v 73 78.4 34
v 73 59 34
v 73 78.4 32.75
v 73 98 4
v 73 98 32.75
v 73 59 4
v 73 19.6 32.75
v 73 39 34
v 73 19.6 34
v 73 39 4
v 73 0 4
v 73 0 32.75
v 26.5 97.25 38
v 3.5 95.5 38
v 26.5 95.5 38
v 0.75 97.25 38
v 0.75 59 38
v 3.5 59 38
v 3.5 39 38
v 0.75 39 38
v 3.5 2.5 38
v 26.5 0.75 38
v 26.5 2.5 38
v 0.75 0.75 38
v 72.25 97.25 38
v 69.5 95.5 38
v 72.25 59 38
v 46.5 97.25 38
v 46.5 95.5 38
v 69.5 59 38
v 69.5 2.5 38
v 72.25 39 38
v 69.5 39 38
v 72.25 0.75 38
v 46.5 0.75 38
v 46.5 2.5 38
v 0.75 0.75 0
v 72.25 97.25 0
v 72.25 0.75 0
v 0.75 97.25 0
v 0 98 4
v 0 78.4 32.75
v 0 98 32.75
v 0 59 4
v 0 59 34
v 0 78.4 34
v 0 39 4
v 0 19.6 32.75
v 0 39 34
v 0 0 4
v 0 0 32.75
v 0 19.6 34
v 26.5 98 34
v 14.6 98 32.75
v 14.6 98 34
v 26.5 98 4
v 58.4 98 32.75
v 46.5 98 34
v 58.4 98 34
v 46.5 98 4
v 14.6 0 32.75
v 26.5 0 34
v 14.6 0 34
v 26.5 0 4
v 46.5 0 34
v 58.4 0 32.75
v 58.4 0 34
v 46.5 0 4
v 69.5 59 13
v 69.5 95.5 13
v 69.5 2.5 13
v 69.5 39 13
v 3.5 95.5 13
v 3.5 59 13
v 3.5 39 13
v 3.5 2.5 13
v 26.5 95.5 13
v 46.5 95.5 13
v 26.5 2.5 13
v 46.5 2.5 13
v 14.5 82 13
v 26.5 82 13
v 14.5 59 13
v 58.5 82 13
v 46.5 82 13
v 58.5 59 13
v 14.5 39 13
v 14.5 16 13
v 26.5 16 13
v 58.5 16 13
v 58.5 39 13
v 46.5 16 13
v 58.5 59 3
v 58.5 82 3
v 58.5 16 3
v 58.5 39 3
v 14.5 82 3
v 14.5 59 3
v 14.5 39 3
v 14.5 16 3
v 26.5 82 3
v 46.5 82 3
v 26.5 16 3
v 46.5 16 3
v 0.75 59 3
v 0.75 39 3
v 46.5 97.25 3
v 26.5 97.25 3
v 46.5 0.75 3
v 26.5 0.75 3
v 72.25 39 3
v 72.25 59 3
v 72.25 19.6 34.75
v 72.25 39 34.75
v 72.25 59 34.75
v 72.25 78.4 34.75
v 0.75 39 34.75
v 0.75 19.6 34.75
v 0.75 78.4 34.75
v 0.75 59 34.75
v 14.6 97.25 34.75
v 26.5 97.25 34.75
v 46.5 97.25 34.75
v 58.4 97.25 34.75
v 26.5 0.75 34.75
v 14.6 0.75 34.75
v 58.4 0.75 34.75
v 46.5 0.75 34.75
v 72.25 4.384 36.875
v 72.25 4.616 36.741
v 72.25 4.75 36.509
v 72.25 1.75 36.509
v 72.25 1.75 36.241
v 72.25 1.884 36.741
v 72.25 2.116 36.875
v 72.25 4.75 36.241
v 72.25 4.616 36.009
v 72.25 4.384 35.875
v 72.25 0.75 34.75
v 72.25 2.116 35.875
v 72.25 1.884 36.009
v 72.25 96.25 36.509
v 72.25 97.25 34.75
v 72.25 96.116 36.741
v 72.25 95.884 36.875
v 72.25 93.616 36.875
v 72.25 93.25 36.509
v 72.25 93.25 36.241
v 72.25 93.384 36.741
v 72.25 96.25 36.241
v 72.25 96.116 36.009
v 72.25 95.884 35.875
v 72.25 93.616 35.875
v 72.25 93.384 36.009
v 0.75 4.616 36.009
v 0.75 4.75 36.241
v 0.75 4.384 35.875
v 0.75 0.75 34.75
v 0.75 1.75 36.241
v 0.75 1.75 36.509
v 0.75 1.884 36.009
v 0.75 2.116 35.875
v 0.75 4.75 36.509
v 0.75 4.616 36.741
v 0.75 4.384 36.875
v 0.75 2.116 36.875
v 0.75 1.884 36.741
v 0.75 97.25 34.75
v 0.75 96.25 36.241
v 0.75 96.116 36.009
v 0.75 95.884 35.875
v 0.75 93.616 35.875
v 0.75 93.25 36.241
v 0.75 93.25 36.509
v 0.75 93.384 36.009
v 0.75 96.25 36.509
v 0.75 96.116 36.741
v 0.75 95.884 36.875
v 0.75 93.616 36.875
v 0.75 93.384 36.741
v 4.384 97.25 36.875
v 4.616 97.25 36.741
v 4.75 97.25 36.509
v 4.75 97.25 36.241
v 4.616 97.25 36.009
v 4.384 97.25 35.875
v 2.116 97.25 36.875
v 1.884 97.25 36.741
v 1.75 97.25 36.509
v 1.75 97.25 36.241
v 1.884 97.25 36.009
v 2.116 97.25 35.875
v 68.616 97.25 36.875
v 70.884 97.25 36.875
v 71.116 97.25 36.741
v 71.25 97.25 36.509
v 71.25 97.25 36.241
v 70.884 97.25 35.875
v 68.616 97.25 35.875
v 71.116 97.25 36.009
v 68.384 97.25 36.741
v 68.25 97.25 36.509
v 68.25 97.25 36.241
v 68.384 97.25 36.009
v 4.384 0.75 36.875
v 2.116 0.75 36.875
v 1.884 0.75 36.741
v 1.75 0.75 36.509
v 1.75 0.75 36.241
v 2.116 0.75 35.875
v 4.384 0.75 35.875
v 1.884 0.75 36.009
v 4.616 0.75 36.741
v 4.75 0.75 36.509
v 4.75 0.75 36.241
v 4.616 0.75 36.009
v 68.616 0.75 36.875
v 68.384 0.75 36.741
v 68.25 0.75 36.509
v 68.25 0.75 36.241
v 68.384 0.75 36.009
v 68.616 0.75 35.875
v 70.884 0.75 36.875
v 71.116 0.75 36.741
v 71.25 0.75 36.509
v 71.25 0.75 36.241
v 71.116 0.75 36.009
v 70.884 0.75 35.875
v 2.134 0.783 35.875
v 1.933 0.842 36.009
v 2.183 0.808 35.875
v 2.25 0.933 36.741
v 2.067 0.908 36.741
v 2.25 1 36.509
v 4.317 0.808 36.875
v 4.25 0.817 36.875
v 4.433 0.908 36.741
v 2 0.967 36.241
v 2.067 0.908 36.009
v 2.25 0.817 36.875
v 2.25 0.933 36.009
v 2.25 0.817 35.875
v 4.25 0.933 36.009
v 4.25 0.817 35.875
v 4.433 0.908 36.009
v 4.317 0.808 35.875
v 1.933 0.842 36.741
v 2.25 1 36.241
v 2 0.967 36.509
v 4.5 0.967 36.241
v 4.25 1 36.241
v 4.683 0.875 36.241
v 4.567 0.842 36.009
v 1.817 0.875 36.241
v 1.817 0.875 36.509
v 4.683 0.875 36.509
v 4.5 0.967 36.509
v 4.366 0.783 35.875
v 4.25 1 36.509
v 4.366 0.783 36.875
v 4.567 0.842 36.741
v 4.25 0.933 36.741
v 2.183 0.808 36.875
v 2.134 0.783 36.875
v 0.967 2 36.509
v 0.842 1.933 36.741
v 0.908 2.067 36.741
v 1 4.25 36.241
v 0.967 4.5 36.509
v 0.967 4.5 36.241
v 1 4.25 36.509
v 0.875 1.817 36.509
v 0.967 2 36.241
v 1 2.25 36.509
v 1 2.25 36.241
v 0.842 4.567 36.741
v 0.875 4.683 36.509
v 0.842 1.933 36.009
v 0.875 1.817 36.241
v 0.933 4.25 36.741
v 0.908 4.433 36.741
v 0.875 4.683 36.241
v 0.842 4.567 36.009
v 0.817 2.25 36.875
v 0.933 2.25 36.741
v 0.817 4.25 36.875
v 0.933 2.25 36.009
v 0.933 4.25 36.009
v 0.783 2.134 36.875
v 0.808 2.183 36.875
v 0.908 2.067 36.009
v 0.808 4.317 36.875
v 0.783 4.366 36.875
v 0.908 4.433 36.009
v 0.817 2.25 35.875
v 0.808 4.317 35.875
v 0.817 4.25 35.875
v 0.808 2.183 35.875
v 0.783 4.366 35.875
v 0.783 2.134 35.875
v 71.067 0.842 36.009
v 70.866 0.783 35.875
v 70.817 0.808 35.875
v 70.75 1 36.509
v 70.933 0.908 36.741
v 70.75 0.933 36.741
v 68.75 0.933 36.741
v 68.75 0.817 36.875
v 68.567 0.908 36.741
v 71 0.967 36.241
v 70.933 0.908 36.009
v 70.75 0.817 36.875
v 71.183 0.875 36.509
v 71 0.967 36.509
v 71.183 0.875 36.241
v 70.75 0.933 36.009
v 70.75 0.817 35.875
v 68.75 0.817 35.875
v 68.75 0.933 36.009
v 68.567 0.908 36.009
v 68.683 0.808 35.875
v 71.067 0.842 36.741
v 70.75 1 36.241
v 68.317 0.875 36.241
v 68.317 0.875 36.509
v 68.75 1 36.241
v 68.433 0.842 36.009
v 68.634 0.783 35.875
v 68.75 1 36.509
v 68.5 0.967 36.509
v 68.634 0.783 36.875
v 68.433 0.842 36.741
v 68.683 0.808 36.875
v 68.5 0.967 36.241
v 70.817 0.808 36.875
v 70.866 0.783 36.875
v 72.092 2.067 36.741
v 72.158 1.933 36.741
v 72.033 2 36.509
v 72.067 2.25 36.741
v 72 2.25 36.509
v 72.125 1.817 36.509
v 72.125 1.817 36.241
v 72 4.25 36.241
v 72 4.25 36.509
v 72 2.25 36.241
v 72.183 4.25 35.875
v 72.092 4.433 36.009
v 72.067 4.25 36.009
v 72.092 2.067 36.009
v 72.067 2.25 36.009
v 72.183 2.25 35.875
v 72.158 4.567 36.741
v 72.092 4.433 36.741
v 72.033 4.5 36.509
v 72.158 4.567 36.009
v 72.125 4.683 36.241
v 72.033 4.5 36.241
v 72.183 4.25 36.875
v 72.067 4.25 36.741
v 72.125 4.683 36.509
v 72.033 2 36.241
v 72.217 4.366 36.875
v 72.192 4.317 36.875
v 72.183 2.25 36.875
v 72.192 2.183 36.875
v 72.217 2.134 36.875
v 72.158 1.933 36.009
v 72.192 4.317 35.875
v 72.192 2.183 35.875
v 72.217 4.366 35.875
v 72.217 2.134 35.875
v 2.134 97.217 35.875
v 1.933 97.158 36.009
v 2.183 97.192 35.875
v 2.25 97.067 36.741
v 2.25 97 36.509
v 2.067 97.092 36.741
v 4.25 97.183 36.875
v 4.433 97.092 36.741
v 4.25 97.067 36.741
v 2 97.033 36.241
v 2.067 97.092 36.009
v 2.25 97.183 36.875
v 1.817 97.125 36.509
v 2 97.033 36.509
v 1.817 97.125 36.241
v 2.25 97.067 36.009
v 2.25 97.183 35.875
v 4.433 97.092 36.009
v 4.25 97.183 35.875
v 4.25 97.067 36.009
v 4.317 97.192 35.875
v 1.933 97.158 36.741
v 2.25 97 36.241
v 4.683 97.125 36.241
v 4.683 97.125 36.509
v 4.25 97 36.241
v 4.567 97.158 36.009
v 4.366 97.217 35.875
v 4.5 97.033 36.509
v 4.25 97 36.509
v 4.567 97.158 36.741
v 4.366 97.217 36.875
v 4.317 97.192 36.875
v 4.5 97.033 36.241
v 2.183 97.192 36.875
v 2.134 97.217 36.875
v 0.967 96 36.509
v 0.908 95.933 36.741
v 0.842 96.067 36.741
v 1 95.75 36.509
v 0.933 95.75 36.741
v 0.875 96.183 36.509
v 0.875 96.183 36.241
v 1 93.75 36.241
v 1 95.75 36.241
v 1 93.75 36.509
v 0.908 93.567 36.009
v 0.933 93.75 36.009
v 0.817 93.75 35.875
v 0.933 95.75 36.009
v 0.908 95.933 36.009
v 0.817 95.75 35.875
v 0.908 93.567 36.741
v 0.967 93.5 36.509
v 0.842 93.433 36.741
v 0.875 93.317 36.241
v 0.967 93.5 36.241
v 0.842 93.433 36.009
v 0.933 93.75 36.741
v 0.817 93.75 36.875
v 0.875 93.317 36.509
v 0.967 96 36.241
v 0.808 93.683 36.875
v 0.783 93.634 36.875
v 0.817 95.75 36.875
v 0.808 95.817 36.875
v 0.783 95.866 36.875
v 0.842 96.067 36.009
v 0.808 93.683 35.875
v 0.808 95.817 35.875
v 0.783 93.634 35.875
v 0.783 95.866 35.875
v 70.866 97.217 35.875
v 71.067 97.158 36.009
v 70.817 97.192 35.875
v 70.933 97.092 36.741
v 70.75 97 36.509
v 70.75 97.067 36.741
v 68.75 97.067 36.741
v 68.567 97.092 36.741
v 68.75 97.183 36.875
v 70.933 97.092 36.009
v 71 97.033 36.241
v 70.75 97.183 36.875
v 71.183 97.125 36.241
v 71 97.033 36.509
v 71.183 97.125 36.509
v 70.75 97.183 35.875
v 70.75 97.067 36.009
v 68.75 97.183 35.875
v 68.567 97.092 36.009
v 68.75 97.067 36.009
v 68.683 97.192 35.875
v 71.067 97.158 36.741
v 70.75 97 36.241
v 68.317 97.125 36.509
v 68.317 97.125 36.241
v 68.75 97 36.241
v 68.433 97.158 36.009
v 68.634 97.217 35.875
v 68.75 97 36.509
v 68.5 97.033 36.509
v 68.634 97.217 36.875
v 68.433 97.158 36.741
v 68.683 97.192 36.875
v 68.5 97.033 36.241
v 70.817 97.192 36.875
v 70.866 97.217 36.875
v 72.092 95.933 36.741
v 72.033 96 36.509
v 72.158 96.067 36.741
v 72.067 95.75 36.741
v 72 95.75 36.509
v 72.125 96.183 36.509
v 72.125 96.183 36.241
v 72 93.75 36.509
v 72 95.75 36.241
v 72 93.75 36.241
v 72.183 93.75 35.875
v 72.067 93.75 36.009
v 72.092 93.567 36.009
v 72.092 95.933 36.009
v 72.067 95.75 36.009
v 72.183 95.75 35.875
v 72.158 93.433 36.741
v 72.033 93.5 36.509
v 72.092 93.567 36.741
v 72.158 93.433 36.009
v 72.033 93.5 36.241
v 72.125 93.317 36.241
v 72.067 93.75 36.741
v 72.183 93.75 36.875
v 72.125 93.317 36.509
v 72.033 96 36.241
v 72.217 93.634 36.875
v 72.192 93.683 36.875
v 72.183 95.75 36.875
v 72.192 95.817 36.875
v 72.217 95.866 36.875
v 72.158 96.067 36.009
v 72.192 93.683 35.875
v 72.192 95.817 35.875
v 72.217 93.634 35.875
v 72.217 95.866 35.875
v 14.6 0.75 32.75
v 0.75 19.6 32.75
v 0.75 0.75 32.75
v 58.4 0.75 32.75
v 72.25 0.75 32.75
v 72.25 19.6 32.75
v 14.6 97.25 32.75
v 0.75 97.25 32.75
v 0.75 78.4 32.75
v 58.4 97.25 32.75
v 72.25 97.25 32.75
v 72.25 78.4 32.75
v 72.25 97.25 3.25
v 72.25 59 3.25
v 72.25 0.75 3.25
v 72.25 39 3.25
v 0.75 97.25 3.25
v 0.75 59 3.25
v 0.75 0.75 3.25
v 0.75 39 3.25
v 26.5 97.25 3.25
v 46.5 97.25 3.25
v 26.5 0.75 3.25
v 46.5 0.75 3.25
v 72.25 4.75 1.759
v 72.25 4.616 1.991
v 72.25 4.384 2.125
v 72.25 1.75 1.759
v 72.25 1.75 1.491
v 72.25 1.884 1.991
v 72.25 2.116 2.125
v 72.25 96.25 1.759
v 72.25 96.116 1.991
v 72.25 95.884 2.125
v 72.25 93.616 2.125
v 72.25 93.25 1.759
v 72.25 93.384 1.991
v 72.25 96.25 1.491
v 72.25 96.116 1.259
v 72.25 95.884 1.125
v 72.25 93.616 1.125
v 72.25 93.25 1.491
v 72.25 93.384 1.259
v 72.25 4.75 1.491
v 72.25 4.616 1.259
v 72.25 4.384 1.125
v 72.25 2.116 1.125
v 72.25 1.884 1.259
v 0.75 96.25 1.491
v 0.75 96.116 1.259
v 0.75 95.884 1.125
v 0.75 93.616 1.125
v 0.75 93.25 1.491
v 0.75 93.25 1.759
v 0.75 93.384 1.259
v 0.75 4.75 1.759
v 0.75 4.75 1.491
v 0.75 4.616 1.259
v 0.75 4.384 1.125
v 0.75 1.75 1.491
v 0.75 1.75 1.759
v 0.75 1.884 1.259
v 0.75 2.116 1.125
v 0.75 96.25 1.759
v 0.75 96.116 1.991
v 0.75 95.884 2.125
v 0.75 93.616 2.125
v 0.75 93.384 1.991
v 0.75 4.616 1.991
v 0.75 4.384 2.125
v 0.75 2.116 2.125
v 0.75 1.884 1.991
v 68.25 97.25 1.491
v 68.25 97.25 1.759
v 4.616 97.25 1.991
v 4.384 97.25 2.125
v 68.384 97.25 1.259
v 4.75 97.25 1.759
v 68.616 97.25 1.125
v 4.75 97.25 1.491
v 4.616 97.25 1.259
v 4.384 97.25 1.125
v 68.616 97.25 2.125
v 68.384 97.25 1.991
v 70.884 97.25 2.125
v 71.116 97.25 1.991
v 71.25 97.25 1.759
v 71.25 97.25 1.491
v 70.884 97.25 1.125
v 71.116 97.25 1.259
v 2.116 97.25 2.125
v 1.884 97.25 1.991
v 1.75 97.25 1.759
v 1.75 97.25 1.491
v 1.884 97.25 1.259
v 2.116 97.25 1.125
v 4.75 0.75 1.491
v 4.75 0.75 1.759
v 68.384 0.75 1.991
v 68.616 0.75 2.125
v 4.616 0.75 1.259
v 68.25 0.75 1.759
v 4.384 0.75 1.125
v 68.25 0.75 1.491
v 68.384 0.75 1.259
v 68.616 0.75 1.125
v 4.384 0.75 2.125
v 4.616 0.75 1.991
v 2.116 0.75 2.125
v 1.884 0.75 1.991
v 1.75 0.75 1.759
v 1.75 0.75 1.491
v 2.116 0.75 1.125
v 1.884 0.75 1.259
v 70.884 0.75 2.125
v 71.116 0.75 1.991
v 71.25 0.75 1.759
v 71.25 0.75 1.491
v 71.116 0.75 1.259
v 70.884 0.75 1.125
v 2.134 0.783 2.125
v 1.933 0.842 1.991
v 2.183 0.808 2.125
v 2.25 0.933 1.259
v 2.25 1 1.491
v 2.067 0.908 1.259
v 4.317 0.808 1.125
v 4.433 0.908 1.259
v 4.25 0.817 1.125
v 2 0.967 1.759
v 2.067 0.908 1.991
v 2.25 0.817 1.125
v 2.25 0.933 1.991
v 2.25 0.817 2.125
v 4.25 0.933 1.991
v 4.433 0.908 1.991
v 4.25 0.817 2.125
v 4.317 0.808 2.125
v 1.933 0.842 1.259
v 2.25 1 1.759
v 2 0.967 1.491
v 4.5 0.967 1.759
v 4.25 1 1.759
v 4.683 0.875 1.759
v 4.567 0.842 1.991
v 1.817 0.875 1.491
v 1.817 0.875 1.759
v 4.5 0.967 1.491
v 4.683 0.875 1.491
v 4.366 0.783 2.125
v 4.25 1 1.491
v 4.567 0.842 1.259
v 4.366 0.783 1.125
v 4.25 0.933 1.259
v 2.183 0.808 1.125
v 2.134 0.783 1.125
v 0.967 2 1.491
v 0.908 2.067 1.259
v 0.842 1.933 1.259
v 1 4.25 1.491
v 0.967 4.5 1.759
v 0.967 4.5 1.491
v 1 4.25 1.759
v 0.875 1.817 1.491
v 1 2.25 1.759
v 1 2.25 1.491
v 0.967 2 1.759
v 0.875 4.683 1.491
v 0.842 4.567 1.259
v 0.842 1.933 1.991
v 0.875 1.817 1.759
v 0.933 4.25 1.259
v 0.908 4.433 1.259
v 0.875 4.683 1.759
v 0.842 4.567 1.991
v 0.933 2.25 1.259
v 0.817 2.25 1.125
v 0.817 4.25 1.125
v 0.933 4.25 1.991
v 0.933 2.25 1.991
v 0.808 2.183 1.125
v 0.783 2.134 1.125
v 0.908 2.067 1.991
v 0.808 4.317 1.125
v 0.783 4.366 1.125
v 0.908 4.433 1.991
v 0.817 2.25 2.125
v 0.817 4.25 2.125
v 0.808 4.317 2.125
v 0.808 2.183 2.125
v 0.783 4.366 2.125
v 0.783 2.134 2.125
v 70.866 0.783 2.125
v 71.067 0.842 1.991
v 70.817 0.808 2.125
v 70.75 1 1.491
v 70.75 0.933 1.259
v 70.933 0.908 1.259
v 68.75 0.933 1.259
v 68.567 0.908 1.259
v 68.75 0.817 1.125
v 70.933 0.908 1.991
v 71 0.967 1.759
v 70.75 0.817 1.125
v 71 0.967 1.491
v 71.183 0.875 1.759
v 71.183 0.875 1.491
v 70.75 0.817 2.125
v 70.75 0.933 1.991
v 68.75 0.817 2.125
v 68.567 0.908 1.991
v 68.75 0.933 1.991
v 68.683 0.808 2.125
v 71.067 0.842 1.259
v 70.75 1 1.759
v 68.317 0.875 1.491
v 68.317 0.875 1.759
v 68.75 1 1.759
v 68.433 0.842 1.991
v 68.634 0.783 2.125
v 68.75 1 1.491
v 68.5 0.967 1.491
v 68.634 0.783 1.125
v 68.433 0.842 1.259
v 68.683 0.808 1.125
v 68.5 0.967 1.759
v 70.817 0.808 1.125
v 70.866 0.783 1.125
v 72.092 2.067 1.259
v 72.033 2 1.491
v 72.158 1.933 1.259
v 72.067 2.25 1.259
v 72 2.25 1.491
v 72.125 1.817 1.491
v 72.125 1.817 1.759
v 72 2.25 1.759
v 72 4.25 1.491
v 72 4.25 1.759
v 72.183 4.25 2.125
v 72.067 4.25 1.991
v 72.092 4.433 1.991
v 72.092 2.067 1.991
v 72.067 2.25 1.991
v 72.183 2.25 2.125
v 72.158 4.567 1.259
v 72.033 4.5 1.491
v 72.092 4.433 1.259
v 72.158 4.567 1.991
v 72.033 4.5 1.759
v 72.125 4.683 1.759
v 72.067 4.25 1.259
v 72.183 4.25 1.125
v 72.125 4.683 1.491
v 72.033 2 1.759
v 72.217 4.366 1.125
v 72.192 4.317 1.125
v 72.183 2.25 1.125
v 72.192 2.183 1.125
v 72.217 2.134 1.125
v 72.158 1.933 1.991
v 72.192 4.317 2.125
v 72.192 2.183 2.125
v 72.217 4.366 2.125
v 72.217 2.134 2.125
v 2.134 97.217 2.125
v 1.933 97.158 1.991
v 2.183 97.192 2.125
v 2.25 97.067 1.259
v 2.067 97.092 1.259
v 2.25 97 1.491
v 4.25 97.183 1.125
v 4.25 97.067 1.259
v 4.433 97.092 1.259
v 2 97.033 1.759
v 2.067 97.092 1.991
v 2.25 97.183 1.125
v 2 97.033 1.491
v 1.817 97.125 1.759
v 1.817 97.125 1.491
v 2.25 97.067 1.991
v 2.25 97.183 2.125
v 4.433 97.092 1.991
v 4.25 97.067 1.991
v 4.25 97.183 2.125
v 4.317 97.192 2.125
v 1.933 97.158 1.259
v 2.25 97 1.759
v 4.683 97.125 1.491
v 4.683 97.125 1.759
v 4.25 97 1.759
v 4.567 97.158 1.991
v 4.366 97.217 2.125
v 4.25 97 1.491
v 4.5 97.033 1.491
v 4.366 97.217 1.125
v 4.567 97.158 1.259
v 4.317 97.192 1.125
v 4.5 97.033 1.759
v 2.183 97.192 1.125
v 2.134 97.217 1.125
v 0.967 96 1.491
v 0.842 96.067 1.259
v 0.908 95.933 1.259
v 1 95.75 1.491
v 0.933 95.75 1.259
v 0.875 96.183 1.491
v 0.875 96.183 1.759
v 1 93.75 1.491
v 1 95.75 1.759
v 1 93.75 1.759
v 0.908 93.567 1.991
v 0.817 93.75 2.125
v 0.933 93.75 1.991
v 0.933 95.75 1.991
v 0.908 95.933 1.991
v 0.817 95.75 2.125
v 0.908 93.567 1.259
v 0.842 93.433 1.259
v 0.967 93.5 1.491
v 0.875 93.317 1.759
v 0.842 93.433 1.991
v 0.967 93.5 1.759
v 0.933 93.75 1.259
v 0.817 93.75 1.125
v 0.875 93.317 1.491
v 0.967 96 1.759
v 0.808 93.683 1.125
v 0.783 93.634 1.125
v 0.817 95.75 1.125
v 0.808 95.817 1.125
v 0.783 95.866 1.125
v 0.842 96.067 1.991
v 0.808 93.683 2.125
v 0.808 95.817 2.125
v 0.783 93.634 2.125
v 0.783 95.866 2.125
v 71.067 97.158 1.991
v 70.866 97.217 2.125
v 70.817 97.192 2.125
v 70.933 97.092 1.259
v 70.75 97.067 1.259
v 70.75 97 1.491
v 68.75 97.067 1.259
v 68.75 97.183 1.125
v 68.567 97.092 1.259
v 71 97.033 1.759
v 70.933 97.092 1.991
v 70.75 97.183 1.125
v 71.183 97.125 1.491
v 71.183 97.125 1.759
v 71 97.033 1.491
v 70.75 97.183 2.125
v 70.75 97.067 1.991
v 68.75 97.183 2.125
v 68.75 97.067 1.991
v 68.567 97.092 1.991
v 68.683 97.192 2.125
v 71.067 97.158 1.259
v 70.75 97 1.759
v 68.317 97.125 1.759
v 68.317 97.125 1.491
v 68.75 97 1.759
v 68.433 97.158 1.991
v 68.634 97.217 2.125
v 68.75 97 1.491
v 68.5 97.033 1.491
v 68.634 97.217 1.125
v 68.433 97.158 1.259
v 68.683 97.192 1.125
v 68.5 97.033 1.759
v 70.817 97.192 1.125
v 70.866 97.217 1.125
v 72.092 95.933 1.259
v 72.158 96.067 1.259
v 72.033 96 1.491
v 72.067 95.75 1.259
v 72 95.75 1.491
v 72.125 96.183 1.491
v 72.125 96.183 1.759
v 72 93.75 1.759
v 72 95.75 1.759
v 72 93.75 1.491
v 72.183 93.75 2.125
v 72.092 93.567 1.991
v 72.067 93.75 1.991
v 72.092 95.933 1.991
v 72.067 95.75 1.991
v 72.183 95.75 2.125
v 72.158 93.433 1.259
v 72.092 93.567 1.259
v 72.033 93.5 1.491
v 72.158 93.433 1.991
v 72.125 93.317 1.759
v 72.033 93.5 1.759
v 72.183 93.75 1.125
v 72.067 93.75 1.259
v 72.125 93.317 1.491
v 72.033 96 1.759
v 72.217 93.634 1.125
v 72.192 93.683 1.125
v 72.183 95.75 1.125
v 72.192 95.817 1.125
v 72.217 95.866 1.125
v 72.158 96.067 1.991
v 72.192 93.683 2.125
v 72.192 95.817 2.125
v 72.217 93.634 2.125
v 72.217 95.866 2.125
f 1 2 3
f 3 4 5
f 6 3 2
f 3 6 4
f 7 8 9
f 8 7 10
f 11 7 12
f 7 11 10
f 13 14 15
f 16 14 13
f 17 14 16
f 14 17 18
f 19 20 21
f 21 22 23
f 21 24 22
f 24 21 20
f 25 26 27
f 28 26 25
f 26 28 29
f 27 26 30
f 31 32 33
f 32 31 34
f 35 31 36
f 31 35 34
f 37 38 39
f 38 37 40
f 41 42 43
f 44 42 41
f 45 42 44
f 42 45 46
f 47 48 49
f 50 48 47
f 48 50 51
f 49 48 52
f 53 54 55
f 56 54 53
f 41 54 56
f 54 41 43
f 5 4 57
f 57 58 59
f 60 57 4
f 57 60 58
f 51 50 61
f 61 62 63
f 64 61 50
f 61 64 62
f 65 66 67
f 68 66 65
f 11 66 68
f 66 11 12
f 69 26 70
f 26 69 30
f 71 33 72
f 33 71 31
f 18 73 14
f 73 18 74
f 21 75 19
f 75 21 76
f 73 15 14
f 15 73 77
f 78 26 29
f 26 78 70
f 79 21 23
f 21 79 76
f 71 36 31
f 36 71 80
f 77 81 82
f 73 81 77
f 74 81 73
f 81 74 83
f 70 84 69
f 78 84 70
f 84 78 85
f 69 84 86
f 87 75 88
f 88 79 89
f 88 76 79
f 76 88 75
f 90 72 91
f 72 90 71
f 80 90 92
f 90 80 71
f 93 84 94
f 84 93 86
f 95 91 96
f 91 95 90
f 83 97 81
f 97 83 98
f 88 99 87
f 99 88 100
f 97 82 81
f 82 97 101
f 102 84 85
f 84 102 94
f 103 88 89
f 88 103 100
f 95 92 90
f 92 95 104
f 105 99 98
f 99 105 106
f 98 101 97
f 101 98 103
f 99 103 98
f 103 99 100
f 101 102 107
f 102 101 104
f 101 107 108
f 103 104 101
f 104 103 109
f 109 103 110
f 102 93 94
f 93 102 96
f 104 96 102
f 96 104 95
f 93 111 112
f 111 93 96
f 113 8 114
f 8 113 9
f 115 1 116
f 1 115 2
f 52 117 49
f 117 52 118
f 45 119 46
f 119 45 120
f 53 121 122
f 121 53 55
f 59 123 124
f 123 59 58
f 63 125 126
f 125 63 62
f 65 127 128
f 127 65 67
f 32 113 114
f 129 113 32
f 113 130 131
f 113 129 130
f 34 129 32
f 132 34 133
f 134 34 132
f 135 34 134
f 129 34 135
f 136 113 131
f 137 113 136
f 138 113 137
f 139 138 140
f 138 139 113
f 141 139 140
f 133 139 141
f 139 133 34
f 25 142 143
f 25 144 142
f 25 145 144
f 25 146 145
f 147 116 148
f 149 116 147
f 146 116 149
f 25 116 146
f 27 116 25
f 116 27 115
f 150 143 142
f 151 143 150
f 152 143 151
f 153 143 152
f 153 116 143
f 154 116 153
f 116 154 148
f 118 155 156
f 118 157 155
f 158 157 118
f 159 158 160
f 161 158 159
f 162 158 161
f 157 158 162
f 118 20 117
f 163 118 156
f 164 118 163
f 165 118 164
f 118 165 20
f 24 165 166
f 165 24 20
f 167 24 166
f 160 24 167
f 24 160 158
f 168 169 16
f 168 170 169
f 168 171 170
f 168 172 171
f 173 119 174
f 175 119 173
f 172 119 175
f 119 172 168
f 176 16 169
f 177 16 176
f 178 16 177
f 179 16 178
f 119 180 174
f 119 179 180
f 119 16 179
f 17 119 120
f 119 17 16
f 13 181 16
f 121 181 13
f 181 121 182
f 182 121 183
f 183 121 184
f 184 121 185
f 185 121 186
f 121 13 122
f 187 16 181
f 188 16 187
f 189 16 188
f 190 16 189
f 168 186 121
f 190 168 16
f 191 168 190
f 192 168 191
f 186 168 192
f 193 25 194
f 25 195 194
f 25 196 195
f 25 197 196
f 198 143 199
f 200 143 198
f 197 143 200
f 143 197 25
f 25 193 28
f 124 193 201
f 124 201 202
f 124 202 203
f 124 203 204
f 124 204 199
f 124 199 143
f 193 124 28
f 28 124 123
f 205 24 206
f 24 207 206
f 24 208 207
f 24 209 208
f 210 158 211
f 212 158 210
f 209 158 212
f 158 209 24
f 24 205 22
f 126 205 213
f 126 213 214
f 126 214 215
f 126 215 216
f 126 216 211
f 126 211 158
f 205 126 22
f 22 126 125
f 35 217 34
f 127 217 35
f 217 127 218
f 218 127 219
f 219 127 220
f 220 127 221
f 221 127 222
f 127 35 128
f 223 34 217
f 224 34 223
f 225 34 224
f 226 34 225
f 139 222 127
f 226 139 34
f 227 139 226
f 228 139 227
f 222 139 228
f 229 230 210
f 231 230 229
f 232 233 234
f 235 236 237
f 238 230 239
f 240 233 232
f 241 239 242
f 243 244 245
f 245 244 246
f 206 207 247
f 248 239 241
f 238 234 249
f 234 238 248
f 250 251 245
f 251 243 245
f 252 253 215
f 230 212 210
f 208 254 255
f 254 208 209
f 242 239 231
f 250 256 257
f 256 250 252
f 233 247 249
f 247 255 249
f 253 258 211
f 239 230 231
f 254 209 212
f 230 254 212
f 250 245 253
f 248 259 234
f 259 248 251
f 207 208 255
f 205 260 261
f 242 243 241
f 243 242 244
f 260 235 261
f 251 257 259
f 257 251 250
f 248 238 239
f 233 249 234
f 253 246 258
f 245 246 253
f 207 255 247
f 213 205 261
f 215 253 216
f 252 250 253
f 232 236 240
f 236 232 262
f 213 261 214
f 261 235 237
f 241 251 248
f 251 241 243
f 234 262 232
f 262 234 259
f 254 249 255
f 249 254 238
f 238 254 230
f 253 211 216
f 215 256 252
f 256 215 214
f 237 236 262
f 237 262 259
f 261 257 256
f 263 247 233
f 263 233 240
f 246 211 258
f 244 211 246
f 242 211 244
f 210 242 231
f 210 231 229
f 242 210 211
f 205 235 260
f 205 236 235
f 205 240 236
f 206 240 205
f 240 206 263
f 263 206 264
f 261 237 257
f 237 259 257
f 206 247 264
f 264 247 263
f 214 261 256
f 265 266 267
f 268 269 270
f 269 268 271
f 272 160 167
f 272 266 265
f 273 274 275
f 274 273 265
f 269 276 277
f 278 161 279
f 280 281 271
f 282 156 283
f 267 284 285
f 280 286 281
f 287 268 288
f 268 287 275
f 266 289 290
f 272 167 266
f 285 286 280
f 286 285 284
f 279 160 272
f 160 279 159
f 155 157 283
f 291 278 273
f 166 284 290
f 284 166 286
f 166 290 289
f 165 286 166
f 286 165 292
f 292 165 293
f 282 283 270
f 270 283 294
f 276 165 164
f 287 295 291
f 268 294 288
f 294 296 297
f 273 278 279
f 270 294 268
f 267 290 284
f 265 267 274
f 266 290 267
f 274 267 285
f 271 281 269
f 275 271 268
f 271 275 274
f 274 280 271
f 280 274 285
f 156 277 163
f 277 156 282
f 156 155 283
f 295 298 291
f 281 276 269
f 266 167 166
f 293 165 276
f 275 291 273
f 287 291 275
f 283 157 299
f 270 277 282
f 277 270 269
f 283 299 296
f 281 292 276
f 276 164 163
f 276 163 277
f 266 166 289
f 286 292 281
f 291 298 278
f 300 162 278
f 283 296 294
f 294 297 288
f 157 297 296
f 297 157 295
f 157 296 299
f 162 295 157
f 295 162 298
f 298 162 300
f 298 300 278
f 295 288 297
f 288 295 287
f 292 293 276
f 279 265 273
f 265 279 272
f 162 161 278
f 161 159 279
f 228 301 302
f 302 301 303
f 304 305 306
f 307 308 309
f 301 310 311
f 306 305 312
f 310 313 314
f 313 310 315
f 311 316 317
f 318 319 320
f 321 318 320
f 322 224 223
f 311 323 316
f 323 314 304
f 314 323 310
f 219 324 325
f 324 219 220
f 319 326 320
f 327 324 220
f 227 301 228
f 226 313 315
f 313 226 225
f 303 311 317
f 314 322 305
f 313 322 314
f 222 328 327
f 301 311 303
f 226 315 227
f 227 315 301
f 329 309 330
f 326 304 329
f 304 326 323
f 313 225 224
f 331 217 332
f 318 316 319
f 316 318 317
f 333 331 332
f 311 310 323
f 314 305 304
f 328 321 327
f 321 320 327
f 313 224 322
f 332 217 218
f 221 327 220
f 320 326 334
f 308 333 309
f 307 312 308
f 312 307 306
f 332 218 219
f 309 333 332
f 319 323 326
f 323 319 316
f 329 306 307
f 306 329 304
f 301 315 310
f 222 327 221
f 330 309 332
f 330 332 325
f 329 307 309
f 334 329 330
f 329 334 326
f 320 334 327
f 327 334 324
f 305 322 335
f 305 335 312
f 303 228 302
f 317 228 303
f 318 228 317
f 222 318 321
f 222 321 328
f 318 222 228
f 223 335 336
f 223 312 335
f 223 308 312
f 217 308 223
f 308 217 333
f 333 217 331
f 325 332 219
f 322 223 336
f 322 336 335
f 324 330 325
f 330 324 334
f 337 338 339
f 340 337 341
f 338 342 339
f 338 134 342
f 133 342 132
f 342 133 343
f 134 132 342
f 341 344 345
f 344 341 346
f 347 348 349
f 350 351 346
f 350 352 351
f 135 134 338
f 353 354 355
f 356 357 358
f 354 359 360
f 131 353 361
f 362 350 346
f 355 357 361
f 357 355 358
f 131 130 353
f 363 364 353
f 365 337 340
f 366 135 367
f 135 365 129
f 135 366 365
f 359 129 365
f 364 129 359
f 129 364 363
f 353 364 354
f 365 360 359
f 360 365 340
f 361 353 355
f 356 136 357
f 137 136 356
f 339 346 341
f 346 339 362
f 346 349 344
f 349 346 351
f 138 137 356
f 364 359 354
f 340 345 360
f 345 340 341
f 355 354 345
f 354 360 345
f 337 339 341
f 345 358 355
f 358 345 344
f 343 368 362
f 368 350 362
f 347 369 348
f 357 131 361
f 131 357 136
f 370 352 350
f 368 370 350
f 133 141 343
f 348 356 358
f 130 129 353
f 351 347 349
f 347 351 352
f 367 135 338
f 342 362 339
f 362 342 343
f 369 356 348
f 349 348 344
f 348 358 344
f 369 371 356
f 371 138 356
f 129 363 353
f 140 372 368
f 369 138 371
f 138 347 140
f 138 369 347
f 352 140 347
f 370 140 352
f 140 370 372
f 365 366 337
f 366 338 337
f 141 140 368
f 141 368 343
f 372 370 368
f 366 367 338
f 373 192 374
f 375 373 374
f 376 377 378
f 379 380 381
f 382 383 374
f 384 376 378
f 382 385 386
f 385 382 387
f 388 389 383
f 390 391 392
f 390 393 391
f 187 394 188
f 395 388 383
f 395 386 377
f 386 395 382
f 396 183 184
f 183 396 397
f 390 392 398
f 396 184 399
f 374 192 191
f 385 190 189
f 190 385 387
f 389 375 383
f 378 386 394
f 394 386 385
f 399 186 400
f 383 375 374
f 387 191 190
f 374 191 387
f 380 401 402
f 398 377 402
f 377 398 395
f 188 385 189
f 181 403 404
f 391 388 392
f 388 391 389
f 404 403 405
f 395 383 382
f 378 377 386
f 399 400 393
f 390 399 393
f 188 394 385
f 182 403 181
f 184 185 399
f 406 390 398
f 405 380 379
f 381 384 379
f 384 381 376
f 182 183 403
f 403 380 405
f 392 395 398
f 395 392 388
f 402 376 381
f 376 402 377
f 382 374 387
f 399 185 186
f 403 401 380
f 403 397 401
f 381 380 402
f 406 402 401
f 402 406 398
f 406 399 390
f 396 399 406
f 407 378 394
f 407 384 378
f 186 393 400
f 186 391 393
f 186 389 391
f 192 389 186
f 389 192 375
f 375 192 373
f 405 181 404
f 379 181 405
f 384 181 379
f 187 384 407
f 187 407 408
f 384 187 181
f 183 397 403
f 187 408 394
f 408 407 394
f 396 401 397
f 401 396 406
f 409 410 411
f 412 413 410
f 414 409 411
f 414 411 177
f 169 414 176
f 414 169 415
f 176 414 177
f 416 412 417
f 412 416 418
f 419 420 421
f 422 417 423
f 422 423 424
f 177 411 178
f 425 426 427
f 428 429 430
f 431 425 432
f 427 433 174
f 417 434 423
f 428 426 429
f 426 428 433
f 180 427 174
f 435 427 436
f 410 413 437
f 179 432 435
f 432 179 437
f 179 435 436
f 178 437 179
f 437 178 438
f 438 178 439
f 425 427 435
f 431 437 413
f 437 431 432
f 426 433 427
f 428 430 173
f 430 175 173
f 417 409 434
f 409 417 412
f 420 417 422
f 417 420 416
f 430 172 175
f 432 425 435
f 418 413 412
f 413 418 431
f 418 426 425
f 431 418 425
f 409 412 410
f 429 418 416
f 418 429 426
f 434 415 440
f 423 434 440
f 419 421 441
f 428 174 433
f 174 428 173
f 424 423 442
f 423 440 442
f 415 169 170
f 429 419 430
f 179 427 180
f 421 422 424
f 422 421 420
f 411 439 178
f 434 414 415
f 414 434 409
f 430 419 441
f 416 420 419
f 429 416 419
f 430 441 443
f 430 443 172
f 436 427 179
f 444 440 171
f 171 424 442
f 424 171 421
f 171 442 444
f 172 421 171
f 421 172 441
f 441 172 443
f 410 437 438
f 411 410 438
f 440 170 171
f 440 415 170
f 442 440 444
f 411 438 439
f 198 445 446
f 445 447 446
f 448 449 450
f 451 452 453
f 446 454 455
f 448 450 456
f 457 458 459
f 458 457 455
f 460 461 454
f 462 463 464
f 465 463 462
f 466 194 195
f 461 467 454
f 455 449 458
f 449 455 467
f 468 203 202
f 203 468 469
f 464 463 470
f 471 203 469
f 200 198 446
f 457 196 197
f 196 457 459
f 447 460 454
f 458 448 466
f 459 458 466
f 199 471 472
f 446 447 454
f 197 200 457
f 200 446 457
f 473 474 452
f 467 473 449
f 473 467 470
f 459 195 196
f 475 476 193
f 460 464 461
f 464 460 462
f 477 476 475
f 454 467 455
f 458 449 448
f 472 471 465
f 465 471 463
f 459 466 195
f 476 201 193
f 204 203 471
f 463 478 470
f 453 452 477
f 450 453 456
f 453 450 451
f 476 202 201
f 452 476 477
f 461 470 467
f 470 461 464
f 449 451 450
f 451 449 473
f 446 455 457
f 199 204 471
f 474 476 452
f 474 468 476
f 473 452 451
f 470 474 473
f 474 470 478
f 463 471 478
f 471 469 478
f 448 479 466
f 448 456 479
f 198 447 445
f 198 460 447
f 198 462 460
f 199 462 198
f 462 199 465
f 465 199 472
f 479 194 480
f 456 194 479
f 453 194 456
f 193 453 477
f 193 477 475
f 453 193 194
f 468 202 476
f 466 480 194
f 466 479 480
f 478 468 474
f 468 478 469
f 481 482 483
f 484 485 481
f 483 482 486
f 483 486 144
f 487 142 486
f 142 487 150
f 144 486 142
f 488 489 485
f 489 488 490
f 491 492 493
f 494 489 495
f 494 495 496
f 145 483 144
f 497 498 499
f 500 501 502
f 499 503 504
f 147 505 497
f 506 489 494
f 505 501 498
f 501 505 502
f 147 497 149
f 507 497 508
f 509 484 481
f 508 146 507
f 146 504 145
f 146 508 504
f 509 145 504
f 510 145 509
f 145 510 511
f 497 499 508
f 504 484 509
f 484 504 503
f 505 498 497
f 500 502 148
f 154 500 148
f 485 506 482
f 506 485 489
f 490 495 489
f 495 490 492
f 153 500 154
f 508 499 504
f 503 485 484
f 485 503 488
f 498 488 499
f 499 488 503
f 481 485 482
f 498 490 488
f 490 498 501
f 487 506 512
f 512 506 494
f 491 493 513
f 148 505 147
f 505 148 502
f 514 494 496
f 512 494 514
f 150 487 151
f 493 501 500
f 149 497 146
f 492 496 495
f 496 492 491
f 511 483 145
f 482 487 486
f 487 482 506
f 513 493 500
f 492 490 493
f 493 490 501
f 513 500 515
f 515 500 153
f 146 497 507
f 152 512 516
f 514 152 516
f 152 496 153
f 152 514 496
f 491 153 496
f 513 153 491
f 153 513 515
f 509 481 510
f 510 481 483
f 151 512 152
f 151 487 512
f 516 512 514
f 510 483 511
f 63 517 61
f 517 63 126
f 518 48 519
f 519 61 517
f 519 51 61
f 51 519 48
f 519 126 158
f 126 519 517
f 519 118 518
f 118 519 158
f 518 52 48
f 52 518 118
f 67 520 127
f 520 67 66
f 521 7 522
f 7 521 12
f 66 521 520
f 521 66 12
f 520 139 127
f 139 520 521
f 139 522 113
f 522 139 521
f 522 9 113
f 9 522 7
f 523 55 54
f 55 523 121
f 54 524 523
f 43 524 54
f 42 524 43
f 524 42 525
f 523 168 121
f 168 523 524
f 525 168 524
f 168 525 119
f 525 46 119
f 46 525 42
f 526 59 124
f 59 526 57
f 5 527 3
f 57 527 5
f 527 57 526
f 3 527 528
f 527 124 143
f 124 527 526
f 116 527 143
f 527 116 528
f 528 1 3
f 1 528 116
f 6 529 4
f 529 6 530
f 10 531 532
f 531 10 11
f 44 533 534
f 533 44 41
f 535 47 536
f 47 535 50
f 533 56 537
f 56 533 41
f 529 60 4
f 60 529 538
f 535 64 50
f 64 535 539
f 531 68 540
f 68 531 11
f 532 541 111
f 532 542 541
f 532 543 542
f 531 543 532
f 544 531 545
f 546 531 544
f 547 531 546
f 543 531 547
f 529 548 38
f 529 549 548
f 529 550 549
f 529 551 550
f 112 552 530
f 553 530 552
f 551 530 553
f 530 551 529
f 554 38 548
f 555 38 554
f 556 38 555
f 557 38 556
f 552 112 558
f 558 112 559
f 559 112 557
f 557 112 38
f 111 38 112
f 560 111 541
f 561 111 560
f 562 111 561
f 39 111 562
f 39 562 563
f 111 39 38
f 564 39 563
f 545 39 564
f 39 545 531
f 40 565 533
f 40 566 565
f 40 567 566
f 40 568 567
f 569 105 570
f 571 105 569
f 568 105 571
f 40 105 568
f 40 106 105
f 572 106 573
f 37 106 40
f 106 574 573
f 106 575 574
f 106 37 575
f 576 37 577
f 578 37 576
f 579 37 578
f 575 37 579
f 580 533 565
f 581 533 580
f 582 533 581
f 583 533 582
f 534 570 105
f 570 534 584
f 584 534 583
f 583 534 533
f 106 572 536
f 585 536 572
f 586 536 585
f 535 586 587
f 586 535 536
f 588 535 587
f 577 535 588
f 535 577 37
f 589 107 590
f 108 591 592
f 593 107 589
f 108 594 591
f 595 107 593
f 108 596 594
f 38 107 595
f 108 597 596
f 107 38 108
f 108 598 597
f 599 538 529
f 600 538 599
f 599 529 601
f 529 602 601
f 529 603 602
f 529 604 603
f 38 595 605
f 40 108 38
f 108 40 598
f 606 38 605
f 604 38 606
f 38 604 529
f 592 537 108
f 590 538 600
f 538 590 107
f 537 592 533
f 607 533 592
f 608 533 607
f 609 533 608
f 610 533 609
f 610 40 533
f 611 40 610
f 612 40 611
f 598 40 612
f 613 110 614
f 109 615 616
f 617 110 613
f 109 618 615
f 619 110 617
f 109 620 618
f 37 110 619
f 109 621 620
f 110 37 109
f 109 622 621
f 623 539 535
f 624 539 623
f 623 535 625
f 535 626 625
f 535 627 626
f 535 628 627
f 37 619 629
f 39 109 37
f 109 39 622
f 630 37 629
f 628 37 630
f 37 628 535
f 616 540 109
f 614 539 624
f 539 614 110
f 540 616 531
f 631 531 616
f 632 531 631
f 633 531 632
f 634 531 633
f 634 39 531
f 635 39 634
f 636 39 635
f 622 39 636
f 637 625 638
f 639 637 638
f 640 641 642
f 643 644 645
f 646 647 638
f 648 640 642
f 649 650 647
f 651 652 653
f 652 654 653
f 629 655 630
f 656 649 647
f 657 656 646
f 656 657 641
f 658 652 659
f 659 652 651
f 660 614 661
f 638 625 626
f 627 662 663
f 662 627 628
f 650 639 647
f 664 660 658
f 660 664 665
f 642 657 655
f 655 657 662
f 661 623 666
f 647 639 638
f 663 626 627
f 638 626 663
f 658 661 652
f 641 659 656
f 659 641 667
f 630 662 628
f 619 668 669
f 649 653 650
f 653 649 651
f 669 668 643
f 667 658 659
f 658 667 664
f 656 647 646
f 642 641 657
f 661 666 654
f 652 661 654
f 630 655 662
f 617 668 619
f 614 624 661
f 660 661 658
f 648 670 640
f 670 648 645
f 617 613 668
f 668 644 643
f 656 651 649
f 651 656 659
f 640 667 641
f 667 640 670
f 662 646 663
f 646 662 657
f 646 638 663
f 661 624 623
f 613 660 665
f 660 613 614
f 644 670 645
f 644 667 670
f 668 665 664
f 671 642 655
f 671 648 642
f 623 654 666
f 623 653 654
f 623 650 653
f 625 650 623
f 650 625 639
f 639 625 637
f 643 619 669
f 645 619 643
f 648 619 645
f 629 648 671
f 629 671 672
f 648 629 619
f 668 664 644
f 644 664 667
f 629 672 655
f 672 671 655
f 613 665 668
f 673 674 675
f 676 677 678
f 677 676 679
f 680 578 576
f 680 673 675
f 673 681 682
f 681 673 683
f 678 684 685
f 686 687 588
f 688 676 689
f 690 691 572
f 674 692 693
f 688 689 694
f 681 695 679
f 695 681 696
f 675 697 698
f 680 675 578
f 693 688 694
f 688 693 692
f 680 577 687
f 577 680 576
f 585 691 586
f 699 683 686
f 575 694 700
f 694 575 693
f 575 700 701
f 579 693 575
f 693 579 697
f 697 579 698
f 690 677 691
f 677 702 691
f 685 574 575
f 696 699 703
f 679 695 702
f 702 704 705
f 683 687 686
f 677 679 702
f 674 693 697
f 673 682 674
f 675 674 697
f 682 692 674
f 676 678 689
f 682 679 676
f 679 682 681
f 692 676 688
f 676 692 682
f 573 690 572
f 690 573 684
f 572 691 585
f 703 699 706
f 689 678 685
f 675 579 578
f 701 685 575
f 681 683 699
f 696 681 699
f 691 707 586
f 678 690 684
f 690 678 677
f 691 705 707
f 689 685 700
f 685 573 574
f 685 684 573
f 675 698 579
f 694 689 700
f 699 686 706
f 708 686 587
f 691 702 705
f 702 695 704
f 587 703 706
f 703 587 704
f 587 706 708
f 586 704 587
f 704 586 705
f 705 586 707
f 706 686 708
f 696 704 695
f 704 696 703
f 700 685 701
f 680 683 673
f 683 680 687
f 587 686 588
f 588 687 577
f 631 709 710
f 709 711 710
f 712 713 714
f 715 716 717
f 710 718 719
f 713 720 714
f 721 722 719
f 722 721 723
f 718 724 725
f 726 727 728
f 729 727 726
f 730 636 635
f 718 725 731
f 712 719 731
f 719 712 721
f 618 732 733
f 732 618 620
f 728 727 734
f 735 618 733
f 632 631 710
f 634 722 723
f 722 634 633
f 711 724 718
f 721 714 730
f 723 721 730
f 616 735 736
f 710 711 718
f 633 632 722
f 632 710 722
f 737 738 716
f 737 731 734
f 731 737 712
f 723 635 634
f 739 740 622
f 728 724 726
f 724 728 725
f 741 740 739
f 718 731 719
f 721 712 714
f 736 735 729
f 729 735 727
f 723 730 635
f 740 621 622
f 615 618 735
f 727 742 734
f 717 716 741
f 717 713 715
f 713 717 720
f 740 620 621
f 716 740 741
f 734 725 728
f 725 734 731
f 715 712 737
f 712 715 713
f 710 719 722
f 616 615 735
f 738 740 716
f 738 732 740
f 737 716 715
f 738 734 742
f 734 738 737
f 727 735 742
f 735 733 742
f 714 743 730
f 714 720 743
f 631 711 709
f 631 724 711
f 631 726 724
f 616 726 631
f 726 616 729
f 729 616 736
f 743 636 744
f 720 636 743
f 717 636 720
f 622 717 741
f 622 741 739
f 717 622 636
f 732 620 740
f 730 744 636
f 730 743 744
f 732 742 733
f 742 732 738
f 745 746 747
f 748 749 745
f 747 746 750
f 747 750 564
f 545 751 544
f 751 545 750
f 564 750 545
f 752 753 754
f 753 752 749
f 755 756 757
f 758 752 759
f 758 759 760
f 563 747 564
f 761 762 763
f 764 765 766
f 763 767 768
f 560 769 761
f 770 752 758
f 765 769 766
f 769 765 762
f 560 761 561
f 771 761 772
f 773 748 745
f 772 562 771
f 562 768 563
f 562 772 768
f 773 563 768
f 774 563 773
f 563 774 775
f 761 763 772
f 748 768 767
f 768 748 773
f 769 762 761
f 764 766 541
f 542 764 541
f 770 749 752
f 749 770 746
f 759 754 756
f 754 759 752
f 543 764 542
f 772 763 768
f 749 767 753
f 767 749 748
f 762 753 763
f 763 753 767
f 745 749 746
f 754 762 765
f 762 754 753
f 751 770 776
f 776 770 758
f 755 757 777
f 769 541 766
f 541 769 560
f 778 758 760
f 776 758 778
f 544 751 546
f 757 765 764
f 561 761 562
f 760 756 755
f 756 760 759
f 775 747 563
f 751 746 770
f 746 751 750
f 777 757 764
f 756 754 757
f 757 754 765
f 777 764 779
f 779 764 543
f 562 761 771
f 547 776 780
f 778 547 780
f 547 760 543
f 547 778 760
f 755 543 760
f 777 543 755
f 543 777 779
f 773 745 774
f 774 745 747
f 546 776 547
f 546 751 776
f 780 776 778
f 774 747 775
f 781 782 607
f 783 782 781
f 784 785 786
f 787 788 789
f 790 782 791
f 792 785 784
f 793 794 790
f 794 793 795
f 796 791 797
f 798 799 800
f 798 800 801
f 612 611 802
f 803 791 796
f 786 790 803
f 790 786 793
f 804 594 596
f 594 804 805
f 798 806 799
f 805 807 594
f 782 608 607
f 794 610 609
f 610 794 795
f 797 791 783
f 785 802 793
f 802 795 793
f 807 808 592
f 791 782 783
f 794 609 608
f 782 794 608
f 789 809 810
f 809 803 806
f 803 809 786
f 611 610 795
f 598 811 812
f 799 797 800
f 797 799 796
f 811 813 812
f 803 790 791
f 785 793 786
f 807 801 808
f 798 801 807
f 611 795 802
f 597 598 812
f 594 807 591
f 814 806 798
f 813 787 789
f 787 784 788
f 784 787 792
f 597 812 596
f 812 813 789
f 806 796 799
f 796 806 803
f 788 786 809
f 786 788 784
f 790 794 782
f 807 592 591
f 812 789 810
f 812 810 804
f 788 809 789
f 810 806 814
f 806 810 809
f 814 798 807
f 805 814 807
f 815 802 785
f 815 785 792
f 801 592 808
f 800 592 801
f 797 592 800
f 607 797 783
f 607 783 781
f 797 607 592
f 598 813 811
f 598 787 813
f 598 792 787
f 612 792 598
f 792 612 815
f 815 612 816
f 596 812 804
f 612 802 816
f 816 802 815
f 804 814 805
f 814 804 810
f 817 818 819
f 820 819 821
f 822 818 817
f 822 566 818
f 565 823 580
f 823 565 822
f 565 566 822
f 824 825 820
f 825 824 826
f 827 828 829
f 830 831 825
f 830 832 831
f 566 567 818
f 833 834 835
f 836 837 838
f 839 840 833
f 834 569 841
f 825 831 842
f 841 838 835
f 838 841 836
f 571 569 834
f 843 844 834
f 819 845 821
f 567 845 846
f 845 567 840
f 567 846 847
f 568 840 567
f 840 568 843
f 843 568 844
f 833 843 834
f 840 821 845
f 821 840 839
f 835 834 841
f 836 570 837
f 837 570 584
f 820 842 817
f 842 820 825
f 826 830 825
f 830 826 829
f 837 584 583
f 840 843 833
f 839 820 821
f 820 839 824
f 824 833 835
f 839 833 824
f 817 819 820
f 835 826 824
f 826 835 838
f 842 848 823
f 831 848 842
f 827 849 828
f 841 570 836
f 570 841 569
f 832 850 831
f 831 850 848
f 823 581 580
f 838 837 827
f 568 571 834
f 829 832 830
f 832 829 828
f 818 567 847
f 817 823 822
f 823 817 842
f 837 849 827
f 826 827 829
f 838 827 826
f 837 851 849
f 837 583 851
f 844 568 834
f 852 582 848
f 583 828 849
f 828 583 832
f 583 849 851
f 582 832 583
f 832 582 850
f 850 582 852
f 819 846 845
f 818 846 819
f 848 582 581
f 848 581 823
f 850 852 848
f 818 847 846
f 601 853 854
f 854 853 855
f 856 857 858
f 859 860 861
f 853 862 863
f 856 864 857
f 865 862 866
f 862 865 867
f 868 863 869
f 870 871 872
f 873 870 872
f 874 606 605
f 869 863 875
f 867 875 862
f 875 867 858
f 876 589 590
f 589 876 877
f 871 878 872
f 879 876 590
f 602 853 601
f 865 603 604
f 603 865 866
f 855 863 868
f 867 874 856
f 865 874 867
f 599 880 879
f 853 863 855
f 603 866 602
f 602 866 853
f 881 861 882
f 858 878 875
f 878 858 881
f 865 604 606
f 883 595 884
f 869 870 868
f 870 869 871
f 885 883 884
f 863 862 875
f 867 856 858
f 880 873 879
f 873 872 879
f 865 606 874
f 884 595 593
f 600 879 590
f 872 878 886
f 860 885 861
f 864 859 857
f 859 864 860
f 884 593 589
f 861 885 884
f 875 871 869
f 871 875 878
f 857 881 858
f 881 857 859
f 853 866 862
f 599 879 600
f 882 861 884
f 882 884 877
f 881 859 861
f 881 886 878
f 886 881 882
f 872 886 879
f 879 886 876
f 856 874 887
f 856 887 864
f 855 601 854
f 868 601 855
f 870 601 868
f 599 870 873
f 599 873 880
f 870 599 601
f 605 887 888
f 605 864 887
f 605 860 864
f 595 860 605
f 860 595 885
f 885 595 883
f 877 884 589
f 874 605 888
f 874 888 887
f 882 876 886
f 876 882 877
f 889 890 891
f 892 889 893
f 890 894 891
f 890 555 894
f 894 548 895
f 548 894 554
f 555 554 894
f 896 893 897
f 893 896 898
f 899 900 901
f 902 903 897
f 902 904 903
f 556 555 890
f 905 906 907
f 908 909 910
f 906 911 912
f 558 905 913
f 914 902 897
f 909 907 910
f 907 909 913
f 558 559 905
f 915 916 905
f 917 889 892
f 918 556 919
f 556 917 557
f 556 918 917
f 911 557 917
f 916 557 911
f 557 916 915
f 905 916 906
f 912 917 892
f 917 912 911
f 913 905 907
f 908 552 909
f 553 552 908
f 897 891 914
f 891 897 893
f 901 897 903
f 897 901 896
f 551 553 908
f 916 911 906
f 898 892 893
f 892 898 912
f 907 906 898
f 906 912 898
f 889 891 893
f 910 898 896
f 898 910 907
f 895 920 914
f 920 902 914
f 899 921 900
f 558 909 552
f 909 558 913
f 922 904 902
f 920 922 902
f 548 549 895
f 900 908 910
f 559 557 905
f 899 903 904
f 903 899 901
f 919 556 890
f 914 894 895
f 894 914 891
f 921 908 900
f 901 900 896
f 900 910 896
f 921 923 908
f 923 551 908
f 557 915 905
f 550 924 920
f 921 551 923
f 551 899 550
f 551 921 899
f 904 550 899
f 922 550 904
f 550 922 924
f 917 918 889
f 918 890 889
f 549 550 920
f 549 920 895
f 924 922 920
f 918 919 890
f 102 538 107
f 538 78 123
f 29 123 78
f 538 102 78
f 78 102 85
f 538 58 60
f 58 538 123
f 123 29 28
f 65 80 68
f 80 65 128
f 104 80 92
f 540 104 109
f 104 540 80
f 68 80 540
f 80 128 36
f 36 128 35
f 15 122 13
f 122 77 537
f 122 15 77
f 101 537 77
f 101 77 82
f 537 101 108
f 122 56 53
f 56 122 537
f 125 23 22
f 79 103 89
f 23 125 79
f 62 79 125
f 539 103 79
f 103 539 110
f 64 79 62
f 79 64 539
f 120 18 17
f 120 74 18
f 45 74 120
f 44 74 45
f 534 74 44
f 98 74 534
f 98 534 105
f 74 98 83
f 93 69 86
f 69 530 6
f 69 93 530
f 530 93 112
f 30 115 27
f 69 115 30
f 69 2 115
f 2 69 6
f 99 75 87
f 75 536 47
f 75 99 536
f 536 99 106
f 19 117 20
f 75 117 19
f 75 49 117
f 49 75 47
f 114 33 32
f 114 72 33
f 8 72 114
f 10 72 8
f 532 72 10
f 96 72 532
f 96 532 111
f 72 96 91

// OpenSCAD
include <boardgame_insert_toolkit_lib.2.scad>;

// determines whether lids are output.
g_b_print_lid = f;

// determines whether boxes are output.
g_b_print_box = t; 

// Focus on one box
g_isolated_print_box = ""; 

// Used to visualize how all of the boxes fit together. 
g_b_visualization = false;          
        
// this is the outer wall thickness. 
//Default = 1.5mm
g_wall_thickness = 1.5;

// The tolerance value is extra space put between planes of the lid and box that fit together.
// Increase the tolerance to loosen the fit and decrease it to tighten it.
//
// Note that the tolerance is applied exclusively to the lid.
// So if the lid is too tight or too loose, change this value ( up for looser fit, down for tighter fit ) and 
// you only need to reprint the lid.
// 
// The exception is the stackable box, where the bottom of the box is the lid of the box below,
// in which case the tolerance also affects that box bottom.
//
g_tolerance = 0.15;

// This adjusts the position of the lid detents downward. 
// The larger the value, the bigger the gap between the lid and the box.
g_tolerance_detents_pos = 0.1;

label = "Roberta"; // Roberta Tolben Quill Olette Elwyn
data =
[

    [   "card tray - push down",
        [
            [ BOX_SIZE_XYZ,                                     [73, 98,38] ],
            [ BOX_LID,
                [
                    [ LID_SOLID_B, f],    
                    [ LID_PATTERN_RADIUS,         5],        
                    [ LID_LABELS_BG_THICKNESS, 4],

                    [ LID_PATTERN_N1,               7 ],
                    [ LID_PATTERN_N2,               7 ],
                    [ LID_PATTERN_ANGLE,            25.7 ],
                    [ LID_PATTERN_ROW_OFFSET,       10 ],
                    [ LID_PATTERN_COL_OFFSET,       140 ],
                    [ LID_PATTERN_THICKNESS,        0.6 ],
                    [ LABEL,
                        [
                            [ LBL_TEXT,    label],
                            [ ROTATION,     45 ],
                            [ LBL_SIZE,     AUTO ],
                            [ LBL_FONT,         "Orthodox Herbertarian:style=Regular"],
                        ]
           
                ],
                 ]
            ],

            [ BOX_COMPONENT,
                [
                    [CMP_COMPARTMENT_SIZE_XYZ,  [ 66, 93, 25] ],
                ]
            ], 
            [ BOX_COMPONENT,
                [
                    [CMP_COMPARTMENT_SIZE_XYZ,  [ 44, 66, 35 ] ],
                ]
            ], 
            [ BOX_COMPONENT,
                [
                    [CMP_COMPARTMENT_SIZE_XYZ,  [ 20, 99, 35 ] ],
                ]
            ],   
            [ BOX_COMPONENT,
                [
                    [CMP_COMPARTMENT_SIZE_XYZ,  [ 74, 20, 35 ] ],
                ]
            ],                            
        ]
    ],    

    
  

 
    


   


];


MakeAll();
